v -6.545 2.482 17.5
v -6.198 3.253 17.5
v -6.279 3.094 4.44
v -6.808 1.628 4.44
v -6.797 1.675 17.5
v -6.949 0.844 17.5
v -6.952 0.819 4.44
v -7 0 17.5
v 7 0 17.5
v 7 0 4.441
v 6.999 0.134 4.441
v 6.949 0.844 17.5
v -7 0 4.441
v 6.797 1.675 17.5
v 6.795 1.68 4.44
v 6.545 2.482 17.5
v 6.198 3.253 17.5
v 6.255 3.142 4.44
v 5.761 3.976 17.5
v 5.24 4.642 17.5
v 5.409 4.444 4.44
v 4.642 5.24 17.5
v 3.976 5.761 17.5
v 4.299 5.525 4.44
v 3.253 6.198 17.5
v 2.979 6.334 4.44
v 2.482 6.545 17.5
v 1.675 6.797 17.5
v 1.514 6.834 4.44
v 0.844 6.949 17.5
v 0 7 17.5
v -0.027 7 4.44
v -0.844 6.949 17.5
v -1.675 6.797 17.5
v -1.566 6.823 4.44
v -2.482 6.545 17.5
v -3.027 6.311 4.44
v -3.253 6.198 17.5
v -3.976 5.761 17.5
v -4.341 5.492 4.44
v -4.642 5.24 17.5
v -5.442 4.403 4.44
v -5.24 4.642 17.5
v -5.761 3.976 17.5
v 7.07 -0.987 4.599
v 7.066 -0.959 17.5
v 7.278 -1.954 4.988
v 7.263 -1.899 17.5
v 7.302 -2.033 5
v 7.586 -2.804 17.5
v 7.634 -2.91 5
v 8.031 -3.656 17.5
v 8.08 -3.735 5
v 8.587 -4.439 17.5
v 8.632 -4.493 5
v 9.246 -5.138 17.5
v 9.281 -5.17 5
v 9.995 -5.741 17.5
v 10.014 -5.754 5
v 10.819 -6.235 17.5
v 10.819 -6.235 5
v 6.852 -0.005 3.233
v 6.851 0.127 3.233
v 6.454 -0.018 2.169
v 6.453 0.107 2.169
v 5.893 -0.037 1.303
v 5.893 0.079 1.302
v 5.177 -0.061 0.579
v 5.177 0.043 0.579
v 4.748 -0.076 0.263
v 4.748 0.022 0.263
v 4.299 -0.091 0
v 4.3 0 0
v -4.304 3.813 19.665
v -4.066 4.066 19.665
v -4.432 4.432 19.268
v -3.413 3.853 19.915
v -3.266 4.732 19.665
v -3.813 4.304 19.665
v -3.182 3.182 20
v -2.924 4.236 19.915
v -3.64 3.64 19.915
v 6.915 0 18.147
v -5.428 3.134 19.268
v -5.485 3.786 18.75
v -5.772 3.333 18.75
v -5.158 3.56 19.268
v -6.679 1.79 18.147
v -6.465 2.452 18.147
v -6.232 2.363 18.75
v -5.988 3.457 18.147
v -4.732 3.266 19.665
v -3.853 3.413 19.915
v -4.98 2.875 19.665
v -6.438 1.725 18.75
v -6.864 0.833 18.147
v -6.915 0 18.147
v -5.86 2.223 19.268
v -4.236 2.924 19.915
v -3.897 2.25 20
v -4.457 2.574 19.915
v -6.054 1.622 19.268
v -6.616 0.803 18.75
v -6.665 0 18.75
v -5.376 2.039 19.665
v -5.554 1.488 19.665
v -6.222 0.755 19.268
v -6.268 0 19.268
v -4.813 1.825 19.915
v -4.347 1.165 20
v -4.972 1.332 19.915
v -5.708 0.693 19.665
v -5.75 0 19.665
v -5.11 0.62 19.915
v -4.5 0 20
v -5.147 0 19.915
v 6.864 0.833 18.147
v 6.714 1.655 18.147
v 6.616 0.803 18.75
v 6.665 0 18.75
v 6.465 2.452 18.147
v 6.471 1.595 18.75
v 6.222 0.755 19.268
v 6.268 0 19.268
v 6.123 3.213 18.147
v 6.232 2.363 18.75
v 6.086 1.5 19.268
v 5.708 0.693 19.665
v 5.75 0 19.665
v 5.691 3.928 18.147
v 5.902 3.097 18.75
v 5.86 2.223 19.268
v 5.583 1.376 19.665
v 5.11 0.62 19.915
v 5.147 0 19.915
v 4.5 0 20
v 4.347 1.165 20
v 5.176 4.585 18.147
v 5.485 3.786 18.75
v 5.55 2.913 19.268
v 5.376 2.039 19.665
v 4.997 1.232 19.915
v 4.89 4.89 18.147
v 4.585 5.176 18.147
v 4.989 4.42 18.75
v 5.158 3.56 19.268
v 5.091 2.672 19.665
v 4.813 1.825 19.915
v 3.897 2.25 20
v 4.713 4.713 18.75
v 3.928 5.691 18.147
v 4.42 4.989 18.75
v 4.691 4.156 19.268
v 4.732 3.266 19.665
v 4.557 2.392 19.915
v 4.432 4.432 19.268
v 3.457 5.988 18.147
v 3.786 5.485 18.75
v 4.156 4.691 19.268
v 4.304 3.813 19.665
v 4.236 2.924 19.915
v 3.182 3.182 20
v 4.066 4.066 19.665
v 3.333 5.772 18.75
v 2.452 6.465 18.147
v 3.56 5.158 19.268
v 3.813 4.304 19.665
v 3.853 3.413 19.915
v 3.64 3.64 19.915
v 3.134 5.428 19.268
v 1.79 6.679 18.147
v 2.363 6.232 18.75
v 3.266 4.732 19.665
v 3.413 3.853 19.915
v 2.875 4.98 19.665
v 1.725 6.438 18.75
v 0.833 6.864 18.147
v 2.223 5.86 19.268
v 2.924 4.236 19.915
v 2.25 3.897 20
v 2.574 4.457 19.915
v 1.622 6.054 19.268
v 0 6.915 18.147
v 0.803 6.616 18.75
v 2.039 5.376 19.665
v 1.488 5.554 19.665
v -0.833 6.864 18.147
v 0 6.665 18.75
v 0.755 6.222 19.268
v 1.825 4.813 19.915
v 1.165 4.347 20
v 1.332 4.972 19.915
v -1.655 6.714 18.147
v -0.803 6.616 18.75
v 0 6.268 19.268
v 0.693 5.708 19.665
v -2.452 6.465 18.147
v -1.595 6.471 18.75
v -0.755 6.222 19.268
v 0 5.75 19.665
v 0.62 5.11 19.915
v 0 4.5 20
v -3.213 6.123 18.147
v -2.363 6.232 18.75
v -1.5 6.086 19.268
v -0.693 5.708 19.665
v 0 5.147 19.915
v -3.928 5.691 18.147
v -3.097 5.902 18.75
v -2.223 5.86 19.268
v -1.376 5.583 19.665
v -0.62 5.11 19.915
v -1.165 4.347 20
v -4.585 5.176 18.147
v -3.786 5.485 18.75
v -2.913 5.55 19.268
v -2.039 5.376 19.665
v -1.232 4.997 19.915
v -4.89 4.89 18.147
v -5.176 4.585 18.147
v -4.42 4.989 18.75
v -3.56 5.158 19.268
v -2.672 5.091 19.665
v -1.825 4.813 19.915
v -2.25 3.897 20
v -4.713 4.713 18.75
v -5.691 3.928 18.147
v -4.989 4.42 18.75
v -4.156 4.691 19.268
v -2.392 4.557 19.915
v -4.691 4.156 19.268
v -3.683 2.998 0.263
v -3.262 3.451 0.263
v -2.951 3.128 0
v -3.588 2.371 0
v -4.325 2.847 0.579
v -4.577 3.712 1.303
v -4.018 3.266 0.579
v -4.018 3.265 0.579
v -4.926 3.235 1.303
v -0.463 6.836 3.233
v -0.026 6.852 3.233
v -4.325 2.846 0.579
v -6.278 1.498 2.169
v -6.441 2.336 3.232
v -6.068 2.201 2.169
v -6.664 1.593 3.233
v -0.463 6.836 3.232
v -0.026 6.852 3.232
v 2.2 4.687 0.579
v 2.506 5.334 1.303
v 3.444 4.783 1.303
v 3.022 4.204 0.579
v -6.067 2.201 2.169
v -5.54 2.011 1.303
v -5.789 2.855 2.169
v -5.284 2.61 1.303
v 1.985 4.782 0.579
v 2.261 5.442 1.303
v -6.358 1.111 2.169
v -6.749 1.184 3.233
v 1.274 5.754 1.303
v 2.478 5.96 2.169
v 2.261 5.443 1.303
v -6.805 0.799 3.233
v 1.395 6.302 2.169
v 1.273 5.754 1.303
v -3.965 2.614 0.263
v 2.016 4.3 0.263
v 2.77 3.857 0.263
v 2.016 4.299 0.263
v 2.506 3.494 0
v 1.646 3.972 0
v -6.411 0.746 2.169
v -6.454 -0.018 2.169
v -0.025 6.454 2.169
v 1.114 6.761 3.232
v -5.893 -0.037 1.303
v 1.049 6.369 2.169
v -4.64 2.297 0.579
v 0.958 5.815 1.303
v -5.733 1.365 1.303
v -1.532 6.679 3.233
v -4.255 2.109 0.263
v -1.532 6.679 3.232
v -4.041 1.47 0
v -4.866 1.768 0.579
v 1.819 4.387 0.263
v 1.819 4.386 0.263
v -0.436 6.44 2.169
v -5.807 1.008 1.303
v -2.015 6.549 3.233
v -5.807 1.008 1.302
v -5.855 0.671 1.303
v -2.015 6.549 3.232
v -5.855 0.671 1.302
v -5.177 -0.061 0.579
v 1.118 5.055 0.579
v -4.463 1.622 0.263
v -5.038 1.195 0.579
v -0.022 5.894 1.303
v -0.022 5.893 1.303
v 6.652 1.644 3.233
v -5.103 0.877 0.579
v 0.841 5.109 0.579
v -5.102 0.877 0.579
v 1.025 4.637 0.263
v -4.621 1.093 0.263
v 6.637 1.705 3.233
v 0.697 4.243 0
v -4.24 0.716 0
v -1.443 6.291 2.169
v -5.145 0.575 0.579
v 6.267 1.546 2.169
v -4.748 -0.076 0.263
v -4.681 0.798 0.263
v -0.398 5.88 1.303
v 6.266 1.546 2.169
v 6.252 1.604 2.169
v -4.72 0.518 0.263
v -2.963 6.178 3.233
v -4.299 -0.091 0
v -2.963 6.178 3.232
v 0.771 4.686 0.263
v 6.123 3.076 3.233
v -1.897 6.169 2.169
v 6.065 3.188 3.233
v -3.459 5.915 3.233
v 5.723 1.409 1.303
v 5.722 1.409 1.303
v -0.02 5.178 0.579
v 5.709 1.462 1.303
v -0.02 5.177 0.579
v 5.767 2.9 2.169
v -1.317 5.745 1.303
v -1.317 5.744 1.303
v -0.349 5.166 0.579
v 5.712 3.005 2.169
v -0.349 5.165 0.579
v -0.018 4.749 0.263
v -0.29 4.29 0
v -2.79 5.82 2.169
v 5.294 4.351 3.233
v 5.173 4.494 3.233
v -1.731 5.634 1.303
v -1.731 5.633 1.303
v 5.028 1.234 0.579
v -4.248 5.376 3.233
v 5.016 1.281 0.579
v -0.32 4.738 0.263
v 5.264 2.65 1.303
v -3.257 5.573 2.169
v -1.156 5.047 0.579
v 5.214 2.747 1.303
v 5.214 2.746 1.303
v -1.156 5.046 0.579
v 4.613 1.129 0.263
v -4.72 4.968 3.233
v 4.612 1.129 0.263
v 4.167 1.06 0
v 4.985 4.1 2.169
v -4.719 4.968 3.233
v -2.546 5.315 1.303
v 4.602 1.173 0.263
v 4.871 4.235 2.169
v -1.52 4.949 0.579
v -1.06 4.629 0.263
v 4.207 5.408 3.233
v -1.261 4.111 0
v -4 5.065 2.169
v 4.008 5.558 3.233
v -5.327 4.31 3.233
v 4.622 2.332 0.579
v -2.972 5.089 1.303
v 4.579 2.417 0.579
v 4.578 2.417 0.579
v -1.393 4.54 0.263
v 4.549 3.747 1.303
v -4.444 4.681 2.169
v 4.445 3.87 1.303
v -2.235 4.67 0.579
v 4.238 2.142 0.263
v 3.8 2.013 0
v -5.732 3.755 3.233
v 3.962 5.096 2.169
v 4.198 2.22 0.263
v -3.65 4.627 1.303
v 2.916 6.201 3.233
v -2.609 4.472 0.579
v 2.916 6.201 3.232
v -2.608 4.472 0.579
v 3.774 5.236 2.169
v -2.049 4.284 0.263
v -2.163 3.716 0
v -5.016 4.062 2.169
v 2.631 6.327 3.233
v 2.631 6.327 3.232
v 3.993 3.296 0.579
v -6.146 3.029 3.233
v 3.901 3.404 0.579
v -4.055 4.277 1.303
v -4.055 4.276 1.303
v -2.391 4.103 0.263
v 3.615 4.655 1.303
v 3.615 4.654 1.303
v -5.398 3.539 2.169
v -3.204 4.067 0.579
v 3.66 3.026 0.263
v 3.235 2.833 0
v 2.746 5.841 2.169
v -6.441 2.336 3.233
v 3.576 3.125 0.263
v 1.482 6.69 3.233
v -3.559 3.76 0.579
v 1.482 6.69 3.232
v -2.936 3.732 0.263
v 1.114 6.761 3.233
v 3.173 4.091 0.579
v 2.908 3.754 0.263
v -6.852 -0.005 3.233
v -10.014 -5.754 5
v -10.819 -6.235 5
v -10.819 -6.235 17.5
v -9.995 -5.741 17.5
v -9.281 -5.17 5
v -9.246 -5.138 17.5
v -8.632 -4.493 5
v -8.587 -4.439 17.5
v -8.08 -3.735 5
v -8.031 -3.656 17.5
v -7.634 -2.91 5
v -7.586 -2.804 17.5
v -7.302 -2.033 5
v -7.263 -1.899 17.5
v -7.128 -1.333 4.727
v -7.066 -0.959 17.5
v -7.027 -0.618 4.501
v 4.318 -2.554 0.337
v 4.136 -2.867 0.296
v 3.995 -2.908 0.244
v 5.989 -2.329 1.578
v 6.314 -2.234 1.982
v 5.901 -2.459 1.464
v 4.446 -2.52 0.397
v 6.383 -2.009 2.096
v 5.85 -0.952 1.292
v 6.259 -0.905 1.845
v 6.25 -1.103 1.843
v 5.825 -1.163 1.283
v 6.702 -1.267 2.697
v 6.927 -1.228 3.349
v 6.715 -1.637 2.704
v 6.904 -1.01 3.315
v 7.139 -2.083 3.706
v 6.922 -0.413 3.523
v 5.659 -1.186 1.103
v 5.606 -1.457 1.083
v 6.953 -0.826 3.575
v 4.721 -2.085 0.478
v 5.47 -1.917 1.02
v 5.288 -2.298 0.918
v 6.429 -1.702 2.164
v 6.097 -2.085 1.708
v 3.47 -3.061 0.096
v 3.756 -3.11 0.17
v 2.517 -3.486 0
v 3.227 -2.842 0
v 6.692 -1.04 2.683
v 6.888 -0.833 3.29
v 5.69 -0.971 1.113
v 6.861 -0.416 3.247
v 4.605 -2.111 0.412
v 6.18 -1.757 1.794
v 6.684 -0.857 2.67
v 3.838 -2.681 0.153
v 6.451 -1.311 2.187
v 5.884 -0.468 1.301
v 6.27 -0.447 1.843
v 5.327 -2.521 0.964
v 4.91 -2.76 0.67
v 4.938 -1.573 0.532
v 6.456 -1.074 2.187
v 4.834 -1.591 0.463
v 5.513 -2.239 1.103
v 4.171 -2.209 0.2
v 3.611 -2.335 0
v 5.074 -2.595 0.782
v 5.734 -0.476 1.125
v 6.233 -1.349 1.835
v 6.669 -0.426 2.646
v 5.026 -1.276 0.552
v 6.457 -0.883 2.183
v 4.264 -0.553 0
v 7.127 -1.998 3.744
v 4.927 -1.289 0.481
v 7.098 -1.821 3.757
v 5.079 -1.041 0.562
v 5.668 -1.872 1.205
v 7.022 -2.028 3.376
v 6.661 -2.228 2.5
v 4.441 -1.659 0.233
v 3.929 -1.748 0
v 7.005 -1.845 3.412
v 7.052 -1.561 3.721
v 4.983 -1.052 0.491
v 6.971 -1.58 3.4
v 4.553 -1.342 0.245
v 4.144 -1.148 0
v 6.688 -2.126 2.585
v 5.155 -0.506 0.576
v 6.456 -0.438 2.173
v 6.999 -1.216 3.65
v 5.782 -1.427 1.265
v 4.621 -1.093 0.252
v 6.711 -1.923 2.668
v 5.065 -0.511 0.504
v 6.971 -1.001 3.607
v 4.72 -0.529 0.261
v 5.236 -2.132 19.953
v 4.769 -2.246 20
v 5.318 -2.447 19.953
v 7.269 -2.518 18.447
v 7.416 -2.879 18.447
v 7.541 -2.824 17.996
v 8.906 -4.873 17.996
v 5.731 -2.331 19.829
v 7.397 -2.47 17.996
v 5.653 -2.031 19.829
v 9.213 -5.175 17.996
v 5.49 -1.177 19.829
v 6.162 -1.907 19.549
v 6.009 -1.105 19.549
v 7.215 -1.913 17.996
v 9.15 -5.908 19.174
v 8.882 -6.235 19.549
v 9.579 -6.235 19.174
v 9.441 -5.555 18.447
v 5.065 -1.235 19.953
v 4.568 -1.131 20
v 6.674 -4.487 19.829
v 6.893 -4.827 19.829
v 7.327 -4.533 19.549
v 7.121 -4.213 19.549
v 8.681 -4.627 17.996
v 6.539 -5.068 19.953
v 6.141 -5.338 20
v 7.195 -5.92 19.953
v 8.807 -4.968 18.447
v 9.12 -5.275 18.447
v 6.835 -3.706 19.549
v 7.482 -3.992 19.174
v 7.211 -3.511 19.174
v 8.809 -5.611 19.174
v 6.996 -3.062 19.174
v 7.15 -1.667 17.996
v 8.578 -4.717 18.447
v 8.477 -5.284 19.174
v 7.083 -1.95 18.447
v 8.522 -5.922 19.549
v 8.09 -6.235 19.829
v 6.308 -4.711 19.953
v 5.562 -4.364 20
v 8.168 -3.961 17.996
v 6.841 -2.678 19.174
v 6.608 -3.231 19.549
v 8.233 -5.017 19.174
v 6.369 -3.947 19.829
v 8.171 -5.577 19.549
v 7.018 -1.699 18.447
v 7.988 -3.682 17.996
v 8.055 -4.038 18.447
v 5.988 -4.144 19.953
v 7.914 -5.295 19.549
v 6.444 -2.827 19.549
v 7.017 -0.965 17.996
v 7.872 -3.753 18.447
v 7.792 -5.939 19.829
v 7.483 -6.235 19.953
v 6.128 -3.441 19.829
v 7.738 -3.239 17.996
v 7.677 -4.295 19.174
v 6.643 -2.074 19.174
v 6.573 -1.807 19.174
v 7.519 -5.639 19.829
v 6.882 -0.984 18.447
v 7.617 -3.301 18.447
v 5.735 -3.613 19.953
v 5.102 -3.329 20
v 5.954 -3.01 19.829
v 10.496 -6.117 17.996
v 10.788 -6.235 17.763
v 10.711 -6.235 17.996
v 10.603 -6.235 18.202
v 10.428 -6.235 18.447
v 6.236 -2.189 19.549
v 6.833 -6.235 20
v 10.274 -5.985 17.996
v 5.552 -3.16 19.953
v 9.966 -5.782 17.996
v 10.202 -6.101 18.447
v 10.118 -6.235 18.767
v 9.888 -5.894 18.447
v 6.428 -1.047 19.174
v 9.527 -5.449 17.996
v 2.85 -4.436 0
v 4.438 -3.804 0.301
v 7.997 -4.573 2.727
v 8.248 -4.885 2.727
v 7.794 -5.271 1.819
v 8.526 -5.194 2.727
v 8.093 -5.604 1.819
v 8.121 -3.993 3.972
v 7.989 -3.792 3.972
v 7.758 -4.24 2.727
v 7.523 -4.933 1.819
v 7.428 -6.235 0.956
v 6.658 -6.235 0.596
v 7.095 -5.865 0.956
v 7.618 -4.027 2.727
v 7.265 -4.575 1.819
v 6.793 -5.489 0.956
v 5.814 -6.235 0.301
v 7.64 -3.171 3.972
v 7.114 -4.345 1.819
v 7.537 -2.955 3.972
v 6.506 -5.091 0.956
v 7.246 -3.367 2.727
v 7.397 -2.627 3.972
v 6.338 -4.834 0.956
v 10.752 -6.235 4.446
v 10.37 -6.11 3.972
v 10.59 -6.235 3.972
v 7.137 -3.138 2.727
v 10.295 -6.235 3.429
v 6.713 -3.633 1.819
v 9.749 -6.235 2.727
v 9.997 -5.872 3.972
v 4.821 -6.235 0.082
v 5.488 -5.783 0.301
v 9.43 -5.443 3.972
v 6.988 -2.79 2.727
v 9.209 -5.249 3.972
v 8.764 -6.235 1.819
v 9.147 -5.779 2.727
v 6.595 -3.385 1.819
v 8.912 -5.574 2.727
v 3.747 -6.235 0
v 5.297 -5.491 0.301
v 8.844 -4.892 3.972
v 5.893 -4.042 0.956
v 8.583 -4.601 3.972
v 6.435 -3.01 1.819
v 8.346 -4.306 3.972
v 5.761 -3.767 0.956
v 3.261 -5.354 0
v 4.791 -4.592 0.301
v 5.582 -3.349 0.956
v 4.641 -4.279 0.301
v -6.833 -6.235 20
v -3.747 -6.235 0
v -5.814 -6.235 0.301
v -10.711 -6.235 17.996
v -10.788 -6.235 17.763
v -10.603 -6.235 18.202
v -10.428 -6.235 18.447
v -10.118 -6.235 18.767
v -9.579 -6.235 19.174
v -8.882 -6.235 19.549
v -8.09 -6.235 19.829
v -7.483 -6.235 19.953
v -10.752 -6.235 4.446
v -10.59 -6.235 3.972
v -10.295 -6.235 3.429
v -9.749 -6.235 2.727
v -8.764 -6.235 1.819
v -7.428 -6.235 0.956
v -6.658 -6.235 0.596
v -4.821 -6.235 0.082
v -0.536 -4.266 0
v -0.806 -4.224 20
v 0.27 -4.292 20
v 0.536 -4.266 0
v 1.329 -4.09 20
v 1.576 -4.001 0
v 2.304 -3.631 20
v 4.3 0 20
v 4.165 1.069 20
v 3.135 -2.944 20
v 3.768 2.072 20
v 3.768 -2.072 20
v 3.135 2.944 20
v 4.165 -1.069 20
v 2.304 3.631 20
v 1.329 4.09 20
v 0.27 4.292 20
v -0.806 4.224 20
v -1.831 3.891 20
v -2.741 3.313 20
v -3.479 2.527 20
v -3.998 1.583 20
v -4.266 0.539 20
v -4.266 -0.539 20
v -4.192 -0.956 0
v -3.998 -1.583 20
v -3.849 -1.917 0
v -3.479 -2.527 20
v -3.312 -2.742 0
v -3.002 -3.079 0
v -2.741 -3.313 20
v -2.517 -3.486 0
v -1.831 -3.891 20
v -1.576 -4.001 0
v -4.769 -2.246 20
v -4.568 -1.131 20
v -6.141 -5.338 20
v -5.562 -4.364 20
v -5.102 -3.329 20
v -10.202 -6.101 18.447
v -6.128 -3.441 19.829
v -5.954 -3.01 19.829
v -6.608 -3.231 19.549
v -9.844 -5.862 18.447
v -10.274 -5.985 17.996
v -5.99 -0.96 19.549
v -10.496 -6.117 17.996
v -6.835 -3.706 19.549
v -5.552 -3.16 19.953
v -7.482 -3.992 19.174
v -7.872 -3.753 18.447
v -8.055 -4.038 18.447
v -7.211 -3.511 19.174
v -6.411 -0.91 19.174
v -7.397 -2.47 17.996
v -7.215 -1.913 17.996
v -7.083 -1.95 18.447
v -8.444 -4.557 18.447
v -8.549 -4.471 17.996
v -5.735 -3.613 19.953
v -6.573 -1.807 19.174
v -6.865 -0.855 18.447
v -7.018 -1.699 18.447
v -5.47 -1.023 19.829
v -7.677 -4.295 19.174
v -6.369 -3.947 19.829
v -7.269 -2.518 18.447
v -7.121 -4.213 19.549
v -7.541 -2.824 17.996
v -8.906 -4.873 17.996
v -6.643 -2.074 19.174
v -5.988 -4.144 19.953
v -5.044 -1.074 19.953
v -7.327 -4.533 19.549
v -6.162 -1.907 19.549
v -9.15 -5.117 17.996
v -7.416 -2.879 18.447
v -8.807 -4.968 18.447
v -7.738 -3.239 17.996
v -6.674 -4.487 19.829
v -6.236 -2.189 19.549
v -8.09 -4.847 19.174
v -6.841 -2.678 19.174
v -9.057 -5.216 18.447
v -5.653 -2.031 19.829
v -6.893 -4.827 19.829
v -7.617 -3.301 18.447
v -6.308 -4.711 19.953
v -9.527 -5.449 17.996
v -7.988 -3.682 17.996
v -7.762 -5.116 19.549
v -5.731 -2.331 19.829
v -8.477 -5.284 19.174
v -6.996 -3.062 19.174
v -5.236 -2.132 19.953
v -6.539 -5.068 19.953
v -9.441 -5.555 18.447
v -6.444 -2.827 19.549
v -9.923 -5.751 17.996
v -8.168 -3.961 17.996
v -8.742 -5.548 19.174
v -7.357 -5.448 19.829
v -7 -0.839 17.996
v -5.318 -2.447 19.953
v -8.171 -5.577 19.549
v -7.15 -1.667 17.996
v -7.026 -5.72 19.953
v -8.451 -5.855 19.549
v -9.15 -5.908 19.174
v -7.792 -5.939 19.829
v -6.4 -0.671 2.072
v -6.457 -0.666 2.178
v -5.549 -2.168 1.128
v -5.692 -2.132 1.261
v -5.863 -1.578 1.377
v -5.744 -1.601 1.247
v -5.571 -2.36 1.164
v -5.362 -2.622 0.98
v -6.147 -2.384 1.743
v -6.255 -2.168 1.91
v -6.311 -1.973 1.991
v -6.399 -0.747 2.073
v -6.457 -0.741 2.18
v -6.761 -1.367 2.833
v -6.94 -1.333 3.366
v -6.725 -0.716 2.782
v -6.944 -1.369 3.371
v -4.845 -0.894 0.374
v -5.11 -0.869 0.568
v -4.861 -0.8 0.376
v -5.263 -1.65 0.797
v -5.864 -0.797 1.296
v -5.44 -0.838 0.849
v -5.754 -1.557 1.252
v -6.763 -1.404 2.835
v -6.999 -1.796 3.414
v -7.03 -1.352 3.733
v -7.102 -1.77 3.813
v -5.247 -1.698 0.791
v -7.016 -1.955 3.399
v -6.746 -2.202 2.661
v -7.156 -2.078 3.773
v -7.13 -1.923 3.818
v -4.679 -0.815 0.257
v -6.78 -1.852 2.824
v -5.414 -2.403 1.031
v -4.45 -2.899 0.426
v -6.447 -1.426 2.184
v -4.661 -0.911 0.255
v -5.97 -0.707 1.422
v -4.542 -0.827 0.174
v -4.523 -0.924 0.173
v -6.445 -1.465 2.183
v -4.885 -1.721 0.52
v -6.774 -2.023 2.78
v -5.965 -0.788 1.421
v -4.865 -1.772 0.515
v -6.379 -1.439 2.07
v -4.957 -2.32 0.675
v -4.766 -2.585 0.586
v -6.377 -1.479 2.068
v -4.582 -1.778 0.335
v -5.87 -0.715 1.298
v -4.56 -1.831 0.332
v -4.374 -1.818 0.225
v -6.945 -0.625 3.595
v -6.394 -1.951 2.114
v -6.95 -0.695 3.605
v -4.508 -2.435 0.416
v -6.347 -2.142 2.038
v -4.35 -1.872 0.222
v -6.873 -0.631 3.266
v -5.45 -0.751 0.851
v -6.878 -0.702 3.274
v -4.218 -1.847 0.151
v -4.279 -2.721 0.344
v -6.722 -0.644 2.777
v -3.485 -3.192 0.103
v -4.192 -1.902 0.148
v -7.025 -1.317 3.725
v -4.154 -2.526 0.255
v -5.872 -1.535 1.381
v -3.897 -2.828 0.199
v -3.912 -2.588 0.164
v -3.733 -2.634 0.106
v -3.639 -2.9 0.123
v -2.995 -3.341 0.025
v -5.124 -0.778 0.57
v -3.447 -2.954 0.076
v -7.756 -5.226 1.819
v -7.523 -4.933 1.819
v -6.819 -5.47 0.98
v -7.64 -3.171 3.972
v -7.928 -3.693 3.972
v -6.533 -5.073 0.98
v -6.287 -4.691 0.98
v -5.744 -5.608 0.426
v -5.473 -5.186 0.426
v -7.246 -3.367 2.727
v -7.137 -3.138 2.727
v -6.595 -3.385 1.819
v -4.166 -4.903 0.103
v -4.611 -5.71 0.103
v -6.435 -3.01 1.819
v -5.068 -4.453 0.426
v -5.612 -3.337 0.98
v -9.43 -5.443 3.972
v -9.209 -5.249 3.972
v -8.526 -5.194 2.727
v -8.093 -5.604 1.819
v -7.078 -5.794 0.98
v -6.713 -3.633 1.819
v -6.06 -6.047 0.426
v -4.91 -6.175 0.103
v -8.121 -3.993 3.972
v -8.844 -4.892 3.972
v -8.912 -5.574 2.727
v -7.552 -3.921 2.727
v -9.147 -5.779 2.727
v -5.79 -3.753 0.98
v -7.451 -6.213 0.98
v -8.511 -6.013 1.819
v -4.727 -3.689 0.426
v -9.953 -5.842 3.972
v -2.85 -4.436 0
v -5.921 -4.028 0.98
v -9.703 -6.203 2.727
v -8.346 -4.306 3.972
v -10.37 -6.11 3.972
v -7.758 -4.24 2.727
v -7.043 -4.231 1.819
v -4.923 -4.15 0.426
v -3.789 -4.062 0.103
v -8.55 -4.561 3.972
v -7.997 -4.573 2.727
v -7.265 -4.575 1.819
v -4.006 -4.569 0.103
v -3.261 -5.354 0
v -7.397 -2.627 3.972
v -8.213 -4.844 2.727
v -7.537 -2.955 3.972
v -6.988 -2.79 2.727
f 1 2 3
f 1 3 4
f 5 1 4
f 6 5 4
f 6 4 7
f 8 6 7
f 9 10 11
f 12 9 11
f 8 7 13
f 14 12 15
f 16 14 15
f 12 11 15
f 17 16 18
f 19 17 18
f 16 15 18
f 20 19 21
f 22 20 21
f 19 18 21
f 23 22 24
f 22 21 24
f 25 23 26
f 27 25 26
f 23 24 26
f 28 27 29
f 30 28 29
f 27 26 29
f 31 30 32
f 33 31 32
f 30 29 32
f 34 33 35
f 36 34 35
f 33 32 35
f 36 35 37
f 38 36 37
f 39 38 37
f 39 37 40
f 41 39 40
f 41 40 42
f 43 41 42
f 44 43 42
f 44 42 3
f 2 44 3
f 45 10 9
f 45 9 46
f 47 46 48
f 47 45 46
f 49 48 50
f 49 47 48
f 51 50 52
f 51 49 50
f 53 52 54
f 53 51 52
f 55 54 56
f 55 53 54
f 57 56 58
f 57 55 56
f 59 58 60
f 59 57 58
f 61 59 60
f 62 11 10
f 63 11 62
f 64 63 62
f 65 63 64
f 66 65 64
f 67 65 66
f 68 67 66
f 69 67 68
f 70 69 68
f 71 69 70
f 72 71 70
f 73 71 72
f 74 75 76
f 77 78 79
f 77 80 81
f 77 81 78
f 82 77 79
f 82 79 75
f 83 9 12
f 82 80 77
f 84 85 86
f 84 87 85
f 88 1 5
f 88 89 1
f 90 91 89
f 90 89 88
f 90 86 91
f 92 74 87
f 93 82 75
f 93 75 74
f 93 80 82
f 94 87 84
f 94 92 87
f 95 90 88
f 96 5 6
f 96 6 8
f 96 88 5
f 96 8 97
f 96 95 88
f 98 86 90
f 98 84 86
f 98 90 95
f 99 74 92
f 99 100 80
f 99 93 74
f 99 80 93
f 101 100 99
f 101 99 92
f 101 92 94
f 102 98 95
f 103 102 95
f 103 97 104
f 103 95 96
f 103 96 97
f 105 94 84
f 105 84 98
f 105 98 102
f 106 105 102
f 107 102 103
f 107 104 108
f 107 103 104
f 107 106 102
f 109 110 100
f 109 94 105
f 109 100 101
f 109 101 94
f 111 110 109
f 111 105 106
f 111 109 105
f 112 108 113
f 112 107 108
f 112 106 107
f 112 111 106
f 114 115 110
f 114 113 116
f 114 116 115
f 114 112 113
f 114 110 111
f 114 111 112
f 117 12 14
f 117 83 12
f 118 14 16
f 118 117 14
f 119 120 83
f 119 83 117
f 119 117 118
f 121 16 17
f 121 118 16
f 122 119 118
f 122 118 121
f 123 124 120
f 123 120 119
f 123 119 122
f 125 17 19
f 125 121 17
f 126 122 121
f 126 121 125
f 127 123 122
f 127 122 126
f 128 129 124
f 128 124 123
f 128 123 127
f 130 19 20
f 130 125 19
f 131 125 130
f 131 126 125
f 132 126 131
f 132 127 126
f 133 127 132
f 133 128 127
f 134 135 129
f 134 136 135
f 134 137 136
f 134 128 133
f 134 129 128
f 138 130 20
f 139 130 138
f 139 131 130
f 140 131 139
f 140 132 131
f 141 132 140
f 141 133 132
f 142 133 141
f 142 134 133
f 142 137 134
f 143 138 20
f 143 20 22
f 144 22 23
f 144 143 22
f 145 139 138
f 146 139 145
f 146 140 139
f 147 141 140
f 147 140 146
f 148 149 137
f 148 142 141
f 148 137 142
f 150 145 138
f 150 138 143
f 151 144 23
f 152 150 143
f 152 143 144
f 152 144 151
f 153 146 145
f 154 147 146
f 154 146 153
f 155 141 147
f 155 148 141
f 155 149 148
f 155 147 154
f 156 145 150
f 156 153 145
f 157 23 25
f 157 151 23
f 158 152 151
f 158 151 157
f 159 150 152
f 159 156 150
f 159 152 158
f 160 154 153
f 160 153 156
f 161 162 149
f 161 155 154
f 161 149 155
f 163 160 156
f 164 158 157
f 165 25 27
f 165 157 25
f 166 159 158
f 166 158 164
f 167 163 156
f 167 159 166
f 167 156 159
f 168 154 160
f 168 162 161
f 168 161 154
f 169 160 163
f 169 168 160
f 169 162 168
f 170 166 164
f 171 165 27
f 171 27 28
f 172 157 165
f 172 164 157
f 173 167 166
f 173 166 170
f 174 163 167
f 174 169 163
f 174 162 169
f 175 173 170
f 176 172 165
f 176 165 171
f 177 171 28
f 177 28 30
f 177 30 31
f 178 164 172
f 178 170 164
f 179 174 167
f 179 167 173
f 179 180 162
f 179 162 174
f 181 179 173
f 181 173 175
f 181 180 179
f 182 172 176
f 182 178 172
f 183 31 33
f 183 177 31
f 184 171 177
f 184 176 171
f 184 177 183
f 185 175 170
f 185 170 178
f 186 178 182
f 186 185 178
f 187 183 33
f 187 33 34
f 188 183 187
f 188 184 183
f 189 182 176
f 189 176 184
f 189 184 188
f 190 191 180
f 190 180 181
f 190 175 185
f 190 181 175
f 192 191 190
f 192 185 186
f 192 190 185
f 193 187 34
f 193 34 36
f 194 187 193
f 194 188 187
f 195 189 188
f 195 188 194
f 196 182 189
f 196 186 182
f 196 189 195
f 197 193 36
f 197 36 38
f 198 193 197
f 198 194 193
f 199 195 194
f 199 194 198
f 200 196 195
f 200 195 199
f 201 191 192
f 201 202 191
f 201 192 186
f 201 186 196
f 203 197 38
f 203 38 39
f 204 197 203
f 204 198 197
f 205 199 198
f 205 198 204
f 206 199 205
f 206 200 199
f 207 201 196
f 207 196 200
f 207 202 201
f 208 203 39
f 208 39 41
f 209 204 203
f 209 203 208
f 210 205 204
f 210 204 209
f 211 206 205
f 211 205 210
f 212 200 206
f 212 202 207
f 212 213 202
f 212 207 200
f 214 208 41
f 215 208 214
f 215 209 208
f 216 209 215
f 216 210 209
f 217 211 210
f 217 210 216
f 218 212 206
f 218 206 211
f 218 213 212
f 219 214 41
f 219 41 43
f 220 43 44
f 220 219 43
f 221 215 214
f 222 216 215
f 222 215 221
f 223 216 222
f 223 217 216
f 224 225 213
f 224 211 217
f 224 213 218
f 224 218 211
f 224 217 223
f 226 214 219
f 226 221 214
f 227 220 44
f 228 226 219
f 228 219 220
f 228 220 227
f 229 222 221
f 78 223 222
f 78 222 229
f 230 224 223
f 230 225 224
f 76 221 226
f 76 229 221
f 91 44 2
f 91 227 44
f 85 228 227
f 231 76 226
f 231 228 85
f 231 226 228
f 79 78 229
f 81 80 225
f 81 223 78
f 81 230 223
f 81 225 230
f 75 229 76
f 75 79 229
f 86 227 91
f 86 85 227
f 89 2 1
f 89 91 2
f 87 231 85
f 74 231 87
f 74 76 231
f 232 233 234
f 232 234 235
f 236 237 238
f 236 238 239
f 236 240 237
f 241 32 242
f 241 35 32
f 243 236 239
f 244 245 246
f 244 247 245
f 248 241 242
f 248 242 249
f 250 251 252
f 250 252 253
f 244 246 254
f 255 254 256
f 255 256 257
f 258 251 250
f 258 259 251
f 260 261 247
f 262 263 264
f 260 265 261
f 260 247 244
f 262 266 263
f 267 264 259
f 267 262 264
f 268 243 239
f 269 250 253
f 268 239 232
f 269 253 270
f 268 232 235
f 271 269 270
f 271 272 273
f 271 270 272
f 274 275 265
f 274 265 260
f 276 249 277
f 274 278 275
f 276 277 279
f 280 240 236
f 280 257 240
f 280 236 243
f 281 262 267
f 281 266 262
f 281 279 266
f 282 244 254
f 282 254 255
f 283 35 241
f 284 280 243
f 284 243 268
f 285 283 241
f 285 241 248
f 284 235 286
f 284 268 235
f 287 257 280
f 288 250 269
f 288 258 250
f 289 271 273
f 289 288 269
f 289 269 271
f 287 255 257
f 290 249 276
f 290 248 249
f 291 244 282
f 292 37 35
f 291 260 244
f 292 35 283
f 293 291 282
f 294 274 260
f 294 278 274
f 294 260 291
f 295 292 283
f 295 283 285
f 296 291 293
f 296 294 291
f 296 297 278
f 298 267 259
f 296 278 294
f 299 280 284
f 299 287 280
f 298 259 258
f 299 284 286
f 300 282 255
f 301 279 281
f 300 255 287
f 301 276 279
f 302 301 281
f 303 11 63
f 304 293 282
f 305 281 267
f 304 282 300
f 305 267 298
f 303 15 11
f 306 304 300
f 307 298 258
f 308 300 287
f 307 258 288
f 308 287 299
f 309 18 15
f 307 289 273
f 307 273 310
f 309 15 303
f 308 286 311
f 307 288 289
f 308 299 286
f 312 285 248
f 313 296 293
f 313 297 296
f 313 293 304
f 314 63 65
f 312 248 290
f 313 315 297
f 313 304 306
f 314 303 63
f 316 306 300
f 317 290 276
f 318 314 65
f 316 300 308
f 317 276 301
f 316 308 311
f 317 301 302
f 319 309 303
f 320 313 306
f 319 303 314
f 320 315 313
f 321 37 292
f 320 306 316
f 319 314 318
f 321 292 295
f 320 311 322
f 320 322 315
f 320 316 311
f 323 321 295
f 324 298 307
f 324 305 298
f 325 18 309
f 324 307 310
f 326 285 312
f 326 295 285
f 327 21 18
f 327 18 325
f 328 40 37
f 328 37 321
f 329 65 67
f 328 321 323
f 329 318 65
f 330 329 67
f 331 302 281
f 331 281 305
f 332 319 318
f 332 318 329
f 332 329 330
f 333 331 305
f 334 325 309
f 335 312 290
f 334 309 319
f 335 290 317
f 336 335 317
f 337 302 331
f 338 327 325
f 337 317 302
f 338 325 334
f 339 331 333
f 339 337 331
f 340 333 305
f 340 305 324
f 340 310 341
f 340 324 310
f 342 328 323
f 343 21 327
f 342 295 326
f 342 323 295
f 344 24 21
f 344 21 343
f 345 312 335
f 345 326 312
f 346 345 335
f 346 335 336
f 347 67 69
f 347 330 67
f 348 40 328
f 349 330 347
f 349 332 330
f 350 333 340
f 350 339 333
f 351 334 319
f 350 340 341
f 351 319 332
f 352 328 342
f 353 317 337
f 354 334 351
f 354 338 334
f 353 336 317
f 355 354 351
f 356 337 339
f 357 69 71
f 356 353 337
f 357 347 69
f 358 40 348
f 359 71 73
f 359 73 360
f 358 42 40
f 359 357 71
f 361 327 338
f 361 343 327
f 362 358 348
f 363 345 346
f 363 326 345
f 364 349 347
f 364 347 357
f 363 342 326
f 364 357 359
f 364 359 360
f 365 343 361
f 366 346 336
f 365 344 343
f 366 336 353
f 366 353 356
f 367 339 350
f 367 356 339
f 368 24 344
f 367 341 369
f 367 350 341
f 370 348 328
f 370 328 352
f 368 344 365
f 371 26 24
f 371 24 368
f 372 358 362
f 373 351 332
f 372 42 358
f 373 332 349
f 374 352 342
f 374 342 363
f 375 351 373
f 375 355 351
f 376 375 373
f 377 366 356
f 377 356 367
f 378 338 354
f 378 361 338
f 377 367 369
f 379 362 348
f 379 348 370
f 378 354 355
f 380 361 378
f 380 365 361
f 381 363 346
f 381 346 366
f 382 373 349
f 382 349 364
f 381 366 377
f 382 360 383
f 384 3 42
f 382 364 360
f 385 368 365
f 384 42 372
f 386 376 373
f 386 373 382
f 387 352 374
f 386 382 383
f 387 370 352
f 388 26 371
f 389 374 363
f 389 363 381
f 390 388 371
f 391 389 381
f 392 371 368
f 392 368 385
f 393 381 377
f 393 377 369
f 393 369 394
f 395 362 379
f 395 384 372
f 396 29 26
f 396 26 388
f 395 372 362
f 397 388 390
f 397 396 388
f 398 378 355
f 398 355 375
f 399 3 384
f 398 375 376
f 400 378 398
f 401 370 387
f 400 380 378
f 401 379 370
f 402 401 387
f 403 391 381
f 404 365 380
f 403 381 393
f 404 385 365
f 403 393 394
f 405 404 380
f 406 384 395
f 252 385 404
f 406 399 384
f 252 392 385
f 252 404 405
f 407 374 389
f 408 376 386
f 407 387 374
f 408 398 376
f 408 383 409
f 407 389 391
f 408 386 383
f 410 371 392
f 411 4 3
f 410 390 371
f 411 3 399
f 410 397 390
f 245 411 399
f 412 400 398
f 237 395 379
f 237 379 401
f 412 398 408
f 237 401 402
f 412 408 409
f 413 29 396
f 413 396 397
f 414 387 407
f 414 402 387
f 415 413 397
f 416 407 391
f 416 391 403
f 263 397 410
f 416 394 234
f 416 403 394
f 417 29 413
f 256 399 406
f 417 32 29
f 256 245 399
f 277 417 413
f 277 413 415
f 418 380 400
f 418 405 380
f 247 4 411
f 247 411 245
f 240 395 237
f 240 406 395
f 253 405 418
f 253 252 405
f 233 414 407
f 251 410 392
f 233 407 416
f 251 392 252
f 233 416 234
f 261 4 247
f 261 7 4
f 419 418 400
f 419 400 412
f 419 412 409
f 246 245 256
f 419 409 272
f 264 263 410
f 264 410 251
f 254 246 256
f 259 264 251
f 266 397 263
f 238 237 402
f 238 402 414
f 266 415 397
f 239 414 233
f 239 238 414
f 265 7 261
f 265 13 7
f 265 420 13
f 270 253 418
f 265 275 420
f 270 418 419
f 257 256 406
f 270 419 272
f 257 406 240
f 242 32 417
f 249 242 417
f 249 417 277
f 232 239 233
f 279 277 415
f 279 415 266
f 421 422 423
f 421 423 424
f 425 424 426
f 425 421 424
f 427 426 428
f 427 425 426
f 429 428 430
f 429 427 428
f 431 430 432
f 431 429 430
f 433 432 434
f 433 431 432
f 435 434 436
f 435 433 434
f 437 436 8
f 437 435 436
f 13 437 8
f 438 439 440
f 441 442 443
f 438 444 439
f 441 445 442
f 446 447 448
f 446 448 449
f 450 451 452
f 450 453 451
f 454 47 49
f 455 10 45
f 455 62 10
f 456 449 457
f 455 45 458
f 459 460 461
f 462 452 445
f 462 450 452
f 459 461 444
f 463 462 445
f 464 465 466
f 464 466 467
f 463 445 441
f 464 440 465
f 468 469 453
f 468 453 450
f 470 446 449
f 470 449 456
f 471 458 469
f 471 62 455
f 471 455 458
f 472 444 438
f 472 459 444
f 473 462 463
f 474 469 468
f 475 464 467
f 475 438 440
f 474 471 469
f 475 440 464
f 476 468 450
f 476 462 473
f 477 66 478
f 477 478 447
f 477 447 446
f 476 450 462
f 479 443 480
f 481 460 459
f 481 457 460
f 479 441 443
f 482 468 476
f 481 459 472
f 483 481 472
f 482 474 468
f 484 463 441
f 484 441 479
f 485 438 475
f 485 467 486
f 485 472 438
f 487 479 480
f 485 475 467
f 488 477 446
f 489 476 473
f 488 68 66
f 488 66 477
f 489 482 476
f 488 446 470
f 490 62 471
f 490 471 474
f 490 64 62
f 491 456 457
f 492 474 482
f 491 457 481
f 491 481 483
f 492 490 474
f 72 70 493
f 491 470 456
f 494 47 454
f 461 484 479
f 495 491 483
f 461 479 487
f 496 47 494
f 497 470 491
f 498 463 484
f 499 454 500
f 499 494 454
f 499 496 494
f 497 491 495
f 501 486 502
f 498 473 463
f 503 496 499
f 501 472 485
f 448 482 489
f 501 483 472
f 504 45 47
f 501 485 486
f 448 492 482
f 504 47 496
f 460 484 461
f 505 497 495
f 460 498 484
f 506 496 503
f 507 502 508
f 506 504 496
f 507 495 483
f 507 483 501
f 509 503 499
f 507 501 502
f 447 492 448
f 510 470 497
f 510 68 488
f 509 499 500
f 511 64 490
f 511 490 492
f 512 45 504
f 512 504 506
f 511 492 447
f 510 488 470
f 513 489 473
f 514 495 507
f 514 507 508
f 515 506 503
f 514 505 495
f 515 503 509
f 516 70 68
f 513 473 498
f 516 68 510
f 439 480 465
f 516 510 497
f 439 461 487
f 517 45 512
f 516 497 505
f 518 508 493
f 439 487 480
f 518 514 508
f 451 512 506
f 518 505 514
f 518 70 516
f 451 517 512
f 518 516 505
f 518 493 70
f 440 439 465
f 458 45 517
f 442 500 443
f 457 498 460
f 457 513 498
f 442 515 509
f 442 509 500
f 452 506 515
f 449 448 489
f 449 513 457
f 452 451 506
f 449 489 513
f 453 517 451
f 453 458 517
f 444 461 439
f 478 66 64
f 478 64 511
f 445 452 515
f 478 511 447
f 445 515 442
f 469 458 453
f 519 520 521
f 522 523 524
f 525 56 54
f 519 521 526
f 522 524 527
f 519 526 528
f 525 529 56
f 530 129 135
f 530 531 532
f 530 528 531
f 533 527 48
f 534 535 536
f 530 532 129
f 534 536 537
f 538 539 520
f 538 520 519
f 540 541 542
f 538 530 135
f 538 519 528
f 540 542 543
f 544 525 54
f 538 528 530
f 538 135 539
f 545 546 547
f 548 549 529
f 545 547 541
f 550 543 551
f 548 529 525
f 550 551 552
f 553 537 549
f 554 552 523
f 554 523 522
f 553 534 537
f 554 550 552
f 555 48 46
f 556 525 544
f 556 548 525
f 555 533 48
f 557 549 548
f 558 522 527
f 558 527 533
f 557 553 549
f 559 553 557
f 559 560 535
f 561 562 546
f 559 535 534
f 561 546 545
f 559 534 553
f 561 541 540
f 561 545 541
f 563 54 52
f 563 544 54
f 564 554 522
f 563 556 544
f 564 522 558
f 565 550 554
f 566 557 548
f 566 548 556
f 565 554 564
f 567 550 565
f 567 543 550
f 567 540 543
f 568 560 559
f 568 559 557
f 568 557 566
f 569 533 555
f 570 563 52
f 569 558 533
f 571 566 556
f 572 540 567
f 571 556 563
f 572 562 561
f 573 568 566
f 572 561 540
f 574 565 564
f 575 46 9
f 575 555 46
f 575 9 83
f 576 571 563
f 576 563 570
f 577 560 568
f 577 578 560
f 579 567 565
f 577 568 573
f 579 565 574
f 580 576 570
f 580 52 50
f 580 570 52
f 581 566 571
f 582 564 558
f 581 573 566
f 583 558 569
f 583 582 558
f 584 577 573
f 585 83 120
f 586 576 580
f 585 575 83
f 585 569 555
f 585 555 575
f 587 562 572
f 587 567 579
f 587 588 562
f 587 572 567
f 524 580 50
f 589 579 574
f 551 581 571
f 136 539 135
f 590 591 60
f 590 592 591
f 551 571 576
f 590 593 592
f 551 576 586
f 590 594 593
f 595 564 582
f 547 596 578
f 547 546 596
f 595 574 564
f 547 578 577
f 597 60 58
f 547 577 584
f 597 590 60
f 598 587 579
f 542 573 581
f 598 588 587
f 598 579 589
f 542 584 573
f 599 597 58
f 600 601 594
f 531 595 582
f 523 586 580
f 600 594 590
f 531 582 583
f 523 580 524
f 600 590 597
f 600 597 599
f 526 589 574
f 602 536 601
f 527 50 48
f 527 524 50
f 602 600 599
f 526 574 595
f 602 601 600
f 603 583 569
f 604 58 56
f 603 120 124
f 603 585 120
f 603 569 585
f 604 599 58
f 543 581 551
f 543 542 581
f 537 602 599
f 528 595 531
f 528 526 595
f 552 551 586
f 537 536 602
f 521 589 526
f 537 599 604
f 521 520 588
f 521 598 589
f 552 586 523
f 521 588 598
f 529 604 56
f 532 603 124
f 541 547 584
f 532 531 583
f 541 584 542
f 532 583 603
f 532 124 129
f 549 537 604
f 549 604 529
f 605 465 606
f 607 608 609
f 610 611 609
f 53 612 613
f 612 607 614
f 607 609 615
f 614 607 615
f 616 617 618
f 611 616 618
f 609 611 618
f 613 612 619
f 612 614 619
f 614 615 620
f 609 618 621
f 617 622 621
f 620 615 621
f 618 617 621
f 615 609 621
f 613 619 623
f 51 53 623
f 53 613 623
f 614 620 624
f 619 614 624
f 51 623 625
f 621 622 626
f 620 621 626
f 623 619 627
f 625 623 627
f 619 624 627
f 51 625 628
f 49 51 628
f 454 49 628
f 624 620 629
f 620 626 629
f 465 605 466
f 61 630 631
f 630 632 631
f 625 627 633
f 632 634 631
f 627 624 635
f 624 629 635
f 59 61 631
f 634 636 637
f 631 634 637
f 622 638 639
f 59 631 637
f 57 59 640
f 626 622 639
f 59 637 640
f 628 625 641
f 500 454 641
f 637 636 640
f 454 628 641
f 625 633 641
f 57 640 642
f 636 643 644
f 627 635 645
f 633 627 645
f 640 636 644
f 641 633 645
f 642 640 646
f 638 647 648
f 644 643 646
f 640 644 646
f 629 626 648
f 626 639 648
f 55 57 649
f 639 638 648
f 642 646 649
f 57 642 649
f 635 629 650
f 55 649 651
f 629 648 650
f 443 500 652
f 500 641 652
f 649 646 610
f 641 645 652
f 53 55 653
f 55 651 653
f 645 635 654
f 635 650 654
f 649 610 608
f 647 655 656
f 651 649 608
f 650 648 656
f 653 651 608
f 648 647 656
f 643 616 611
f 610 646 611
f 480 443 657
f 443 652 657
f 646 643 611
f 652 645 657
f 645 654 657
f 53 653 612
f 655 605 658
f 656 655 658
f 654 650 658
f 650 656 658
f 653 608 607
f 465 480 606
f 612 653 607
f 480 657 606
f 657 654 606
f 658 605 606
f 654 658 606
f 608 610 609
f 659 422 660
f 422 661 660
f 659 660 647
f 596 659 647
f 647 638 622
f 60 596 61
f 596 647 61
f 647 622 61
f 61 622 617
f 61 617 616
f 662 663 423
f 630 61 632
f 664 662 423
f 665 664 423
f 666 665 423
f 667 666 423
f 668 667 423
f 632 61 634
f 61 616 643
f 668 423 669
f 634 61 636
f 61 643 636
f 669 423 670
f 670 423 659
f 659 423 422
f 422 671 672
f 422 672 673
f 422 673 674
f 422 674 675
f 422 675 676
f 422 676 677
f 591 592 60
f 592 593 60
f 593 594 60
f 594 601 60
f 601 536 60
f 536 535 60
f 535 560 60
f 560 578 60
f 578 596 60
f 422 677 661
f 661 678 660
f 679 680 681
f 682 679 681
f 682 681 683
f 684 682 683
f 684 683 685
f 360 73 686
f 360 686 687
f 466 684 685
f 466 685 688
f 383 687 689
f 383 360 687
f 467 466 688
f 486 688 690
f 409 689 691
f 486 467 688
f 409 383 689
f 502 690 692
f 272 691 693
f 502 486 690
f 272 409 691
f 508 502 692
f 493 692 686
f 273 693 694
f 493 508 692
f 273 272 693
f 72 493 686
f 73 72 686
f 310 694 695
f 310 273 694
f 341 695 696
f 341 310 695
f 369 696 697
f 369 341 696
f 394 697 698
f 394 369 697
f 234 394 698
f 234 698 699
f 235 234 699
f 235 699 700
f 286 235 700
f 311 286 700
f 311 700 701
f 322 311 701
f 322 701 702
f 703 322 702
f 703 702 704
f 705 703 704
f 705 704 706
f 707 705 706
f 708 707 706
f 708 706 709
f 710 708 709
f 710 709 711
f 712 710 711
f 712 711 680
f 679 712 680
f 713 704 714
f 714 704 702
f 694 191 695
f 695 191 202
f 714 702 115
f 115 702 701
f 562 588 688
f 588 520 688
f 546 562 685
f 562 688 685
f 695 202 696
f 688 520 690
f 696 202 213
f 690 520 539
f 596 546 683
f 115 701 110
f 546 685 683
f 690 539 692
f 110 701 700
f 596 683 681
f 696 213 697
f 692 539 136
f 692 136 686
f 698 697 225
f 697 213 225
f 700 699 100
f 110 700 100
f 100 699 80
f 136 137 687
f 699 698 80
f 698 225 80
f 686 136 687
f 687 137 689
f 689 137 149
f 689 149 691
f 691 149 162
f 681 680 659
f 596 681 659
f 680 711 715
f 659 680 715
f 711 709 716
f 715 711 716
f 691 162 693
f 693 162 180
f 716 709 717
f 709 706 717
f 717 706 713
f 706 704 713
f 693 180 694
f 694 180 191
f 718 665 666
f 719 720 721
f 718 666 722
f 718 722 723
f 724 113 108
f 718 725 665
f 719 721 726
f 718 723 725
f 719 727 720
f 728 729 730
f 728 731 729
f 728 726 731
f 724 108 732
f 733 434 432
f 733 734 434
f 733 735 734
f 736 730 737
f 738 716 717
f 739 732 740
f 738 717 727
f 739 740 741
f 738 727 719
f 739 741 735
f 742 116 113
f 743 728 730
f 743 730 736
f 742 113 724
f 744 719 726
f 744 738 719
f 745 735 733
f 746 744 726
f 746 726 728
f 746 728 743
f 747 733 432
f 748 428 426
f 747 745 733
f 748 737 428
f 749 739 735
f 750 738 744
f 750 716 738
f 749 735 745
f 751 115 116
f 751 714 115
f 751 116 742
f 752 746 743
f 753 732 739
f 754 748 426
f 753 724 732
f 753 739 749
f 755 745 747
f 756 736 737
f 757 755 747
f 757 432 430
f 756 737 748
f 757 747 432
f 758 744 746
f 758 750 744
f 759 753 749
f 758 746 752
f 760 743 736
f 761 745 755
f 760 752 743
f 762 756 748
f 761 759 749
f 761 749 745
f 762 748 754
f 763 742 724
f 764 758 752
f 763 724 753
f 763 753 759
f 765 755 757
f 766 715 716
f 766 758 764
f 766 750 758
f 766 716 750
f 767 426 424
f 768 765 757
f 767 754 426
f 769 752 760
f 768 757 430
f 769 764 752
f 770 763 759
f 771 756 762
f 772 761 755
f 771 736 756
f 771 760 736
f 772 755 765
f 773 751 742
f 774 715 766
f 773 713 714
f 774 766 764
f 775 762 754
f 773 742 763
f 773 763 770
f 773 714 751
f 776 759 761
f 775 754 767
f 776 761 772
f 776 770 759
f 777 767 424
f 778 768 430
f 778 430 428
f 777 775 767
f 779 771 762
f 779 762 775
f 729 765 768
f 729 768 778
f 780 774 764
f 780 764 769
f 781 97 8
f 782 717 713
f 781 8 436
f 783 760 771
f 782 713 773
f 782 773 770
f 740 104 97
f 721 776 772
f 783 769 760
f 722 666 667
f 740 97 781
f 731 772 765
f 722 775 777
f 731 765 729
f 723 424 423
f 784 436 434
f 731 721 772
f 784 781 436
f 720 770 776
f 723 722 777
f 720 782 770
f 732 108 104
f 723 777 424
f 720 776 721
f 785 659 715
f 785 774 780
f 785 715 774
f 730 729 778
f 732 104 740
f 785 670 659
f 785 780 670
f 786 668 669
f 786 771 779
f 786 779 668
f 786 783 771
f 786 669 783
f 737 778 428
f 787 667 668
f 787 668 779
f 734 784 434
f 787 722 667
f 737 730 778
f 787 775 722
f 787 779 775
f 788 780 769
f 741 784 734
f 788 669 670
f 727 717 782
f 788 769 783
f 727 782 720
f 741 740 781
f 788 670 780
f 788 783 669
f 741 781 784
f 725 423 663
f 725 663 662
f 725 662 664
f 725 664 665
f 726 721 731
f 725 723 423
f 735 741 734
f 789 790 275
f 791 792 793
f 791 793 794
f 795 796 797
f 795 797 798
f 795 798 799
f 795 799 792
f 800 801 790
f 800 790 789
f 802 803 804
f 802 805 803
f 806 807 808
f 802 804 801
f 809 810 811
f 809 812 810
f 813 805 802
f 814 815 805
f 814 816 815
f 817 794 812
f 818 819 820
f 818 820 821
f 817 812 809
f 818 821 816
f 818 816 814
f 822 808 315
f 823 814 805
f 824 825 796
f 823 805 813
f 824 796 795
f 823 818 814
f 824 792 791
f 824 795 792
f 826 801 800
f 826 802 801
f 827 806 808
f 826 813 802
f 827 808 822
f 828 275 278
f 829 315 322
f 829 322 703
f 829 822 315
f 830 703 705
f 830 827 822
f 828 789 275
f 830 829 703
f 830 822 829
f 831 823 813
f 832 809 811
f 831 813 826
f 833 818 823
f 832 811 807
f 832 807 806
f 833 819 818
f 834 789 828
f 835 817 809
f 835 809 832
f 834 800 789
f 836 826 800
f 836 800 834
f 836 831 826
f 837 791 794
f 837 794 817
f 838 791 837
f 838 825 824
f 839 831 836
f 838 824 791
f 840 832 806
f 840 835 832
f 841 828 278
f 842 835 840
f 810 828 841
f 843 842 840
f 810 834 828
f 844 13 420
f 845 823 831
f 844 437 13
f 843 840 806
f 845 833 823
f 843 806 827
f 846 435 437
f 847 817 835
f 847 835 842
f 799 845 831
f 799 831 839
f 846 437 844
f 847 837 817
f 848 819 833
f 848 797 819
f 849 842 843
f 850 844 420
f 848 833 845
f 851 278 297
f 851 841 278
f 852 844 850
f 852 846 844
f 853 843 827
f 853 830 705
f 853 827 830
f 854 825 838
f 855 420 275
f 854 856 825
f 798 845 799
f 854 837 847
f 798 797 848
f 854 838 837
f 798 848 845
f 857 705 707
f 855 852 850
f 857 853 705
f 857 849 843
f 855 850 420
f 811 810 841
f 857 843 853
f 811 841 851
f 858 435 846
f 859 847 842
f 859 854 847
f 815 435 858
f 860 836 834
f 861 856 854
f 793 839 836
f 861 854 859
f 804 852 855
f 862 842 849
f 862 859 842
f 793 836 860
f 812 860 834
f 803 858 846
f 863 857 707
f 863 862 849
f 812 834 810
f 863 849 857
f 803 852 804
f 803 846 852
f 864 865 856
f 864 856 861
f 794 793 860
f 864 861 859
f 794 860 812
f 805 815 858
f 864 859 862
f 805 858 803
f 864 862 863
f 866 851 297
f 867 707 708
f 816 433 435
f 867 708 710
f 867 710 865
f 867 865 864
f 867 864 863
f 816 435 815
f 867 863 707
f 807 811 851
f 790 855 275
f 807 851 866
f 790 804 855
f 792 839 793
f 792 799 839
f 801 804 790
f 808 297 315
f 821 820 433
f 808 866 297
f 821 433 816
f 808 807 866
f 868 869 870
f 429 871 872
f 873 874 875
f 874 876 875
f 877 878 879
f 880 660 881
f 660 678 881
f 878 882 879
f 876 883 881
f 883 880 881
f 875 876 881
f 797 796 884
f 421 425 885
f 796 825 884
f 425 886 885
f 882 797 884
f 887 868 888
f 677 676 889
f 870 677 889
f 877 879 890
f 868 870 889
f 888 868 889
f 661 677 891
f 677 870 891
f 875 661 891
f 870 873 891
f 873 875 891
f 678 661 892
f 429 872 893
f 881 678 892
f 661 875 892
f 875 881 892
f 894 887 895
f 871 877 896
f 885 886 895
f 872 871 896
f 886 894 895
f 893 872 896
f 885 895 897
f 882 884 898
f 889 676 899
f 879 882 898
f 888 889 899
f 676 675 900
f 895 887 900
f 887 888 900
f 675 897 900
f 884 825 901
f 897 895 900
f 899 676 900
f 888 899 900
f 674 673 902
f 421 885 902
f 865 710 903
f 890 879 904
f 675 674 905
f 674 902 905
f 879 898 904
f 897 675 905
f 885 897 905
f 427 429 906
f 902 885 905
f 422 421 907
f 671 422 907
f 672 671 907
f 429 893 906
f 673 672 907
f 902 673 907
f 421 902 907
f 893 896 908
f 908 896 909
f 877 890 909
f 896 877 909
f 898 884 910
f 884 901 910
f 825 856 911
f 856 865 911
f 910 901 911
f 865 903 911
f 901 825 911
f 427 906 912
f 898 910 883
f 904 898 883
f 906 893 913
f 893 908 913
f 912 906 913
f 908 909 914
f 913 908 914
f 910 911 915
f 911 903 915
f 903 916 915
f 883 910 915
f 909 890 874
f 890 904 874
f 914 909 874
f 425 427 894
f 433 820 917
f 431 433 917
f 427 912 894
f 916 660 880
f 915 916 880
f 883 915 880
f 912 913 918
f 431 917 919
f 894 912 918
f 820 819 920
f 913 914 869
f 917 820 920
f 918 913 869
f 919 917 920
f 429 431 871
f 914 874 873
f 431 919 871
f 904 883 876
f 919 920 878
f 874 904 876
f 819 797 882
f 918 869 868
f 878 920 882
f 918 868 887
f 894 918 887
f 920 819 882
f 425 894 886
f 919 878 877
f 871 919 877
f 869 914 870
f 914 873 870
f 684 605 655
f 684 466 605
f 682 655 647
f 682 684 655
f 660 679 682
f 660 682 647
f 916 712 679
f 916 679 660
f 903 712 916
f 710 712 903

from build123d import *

# Parameters (mm, degrees)
SKETCH_R    = 4.3
PAD_DEPTH   = 20
FILLET_R    = 2.5
FILLET001_R = 5


with BuildPart() as part:
    # Sketch → Pad (new body)
    with BuildSketch(Plane.XY):
        with BuildLine():
            ThreePointArc((7, 0), (0, 7), (-7, 0))
            ThreePointArc((-10.818791, -6.235375), (-8.030558, -3.655922), (-7, 0))
            Line((-10.818791, -6.235375), (10.818791, -6.235375))
            ThreePointArc((7, 0), (8.030558, -3.655922), (10.818791, -6.235375))
        make_face()
        Circle(SKETCH_R, mode=Mode.SUBTRACT)
    extrude(amount=PAD_DEPTH)

    # Fillet
    fillet_edges = [part.edges().sort_by_distance(p)[0] for p in [
        (0, 7, 20),
        (8.030558, -3.655922, 20),
        (-8.030558, -3.655922, 20),
    ]]
    fillet(fillet_edges, radius=FILLET_R)

    # Fillet001
    fillet001_edges = [part.edges().sort_by_distance(p)[0] for p in [
        (0, 7, 0),
        (-8.030558, -3.655922, 0),
        (8.030558, -3.655922, 0),
    ]]
    fillet(fillet001_edges, radius=FILLET001_R)


solid = part.part
